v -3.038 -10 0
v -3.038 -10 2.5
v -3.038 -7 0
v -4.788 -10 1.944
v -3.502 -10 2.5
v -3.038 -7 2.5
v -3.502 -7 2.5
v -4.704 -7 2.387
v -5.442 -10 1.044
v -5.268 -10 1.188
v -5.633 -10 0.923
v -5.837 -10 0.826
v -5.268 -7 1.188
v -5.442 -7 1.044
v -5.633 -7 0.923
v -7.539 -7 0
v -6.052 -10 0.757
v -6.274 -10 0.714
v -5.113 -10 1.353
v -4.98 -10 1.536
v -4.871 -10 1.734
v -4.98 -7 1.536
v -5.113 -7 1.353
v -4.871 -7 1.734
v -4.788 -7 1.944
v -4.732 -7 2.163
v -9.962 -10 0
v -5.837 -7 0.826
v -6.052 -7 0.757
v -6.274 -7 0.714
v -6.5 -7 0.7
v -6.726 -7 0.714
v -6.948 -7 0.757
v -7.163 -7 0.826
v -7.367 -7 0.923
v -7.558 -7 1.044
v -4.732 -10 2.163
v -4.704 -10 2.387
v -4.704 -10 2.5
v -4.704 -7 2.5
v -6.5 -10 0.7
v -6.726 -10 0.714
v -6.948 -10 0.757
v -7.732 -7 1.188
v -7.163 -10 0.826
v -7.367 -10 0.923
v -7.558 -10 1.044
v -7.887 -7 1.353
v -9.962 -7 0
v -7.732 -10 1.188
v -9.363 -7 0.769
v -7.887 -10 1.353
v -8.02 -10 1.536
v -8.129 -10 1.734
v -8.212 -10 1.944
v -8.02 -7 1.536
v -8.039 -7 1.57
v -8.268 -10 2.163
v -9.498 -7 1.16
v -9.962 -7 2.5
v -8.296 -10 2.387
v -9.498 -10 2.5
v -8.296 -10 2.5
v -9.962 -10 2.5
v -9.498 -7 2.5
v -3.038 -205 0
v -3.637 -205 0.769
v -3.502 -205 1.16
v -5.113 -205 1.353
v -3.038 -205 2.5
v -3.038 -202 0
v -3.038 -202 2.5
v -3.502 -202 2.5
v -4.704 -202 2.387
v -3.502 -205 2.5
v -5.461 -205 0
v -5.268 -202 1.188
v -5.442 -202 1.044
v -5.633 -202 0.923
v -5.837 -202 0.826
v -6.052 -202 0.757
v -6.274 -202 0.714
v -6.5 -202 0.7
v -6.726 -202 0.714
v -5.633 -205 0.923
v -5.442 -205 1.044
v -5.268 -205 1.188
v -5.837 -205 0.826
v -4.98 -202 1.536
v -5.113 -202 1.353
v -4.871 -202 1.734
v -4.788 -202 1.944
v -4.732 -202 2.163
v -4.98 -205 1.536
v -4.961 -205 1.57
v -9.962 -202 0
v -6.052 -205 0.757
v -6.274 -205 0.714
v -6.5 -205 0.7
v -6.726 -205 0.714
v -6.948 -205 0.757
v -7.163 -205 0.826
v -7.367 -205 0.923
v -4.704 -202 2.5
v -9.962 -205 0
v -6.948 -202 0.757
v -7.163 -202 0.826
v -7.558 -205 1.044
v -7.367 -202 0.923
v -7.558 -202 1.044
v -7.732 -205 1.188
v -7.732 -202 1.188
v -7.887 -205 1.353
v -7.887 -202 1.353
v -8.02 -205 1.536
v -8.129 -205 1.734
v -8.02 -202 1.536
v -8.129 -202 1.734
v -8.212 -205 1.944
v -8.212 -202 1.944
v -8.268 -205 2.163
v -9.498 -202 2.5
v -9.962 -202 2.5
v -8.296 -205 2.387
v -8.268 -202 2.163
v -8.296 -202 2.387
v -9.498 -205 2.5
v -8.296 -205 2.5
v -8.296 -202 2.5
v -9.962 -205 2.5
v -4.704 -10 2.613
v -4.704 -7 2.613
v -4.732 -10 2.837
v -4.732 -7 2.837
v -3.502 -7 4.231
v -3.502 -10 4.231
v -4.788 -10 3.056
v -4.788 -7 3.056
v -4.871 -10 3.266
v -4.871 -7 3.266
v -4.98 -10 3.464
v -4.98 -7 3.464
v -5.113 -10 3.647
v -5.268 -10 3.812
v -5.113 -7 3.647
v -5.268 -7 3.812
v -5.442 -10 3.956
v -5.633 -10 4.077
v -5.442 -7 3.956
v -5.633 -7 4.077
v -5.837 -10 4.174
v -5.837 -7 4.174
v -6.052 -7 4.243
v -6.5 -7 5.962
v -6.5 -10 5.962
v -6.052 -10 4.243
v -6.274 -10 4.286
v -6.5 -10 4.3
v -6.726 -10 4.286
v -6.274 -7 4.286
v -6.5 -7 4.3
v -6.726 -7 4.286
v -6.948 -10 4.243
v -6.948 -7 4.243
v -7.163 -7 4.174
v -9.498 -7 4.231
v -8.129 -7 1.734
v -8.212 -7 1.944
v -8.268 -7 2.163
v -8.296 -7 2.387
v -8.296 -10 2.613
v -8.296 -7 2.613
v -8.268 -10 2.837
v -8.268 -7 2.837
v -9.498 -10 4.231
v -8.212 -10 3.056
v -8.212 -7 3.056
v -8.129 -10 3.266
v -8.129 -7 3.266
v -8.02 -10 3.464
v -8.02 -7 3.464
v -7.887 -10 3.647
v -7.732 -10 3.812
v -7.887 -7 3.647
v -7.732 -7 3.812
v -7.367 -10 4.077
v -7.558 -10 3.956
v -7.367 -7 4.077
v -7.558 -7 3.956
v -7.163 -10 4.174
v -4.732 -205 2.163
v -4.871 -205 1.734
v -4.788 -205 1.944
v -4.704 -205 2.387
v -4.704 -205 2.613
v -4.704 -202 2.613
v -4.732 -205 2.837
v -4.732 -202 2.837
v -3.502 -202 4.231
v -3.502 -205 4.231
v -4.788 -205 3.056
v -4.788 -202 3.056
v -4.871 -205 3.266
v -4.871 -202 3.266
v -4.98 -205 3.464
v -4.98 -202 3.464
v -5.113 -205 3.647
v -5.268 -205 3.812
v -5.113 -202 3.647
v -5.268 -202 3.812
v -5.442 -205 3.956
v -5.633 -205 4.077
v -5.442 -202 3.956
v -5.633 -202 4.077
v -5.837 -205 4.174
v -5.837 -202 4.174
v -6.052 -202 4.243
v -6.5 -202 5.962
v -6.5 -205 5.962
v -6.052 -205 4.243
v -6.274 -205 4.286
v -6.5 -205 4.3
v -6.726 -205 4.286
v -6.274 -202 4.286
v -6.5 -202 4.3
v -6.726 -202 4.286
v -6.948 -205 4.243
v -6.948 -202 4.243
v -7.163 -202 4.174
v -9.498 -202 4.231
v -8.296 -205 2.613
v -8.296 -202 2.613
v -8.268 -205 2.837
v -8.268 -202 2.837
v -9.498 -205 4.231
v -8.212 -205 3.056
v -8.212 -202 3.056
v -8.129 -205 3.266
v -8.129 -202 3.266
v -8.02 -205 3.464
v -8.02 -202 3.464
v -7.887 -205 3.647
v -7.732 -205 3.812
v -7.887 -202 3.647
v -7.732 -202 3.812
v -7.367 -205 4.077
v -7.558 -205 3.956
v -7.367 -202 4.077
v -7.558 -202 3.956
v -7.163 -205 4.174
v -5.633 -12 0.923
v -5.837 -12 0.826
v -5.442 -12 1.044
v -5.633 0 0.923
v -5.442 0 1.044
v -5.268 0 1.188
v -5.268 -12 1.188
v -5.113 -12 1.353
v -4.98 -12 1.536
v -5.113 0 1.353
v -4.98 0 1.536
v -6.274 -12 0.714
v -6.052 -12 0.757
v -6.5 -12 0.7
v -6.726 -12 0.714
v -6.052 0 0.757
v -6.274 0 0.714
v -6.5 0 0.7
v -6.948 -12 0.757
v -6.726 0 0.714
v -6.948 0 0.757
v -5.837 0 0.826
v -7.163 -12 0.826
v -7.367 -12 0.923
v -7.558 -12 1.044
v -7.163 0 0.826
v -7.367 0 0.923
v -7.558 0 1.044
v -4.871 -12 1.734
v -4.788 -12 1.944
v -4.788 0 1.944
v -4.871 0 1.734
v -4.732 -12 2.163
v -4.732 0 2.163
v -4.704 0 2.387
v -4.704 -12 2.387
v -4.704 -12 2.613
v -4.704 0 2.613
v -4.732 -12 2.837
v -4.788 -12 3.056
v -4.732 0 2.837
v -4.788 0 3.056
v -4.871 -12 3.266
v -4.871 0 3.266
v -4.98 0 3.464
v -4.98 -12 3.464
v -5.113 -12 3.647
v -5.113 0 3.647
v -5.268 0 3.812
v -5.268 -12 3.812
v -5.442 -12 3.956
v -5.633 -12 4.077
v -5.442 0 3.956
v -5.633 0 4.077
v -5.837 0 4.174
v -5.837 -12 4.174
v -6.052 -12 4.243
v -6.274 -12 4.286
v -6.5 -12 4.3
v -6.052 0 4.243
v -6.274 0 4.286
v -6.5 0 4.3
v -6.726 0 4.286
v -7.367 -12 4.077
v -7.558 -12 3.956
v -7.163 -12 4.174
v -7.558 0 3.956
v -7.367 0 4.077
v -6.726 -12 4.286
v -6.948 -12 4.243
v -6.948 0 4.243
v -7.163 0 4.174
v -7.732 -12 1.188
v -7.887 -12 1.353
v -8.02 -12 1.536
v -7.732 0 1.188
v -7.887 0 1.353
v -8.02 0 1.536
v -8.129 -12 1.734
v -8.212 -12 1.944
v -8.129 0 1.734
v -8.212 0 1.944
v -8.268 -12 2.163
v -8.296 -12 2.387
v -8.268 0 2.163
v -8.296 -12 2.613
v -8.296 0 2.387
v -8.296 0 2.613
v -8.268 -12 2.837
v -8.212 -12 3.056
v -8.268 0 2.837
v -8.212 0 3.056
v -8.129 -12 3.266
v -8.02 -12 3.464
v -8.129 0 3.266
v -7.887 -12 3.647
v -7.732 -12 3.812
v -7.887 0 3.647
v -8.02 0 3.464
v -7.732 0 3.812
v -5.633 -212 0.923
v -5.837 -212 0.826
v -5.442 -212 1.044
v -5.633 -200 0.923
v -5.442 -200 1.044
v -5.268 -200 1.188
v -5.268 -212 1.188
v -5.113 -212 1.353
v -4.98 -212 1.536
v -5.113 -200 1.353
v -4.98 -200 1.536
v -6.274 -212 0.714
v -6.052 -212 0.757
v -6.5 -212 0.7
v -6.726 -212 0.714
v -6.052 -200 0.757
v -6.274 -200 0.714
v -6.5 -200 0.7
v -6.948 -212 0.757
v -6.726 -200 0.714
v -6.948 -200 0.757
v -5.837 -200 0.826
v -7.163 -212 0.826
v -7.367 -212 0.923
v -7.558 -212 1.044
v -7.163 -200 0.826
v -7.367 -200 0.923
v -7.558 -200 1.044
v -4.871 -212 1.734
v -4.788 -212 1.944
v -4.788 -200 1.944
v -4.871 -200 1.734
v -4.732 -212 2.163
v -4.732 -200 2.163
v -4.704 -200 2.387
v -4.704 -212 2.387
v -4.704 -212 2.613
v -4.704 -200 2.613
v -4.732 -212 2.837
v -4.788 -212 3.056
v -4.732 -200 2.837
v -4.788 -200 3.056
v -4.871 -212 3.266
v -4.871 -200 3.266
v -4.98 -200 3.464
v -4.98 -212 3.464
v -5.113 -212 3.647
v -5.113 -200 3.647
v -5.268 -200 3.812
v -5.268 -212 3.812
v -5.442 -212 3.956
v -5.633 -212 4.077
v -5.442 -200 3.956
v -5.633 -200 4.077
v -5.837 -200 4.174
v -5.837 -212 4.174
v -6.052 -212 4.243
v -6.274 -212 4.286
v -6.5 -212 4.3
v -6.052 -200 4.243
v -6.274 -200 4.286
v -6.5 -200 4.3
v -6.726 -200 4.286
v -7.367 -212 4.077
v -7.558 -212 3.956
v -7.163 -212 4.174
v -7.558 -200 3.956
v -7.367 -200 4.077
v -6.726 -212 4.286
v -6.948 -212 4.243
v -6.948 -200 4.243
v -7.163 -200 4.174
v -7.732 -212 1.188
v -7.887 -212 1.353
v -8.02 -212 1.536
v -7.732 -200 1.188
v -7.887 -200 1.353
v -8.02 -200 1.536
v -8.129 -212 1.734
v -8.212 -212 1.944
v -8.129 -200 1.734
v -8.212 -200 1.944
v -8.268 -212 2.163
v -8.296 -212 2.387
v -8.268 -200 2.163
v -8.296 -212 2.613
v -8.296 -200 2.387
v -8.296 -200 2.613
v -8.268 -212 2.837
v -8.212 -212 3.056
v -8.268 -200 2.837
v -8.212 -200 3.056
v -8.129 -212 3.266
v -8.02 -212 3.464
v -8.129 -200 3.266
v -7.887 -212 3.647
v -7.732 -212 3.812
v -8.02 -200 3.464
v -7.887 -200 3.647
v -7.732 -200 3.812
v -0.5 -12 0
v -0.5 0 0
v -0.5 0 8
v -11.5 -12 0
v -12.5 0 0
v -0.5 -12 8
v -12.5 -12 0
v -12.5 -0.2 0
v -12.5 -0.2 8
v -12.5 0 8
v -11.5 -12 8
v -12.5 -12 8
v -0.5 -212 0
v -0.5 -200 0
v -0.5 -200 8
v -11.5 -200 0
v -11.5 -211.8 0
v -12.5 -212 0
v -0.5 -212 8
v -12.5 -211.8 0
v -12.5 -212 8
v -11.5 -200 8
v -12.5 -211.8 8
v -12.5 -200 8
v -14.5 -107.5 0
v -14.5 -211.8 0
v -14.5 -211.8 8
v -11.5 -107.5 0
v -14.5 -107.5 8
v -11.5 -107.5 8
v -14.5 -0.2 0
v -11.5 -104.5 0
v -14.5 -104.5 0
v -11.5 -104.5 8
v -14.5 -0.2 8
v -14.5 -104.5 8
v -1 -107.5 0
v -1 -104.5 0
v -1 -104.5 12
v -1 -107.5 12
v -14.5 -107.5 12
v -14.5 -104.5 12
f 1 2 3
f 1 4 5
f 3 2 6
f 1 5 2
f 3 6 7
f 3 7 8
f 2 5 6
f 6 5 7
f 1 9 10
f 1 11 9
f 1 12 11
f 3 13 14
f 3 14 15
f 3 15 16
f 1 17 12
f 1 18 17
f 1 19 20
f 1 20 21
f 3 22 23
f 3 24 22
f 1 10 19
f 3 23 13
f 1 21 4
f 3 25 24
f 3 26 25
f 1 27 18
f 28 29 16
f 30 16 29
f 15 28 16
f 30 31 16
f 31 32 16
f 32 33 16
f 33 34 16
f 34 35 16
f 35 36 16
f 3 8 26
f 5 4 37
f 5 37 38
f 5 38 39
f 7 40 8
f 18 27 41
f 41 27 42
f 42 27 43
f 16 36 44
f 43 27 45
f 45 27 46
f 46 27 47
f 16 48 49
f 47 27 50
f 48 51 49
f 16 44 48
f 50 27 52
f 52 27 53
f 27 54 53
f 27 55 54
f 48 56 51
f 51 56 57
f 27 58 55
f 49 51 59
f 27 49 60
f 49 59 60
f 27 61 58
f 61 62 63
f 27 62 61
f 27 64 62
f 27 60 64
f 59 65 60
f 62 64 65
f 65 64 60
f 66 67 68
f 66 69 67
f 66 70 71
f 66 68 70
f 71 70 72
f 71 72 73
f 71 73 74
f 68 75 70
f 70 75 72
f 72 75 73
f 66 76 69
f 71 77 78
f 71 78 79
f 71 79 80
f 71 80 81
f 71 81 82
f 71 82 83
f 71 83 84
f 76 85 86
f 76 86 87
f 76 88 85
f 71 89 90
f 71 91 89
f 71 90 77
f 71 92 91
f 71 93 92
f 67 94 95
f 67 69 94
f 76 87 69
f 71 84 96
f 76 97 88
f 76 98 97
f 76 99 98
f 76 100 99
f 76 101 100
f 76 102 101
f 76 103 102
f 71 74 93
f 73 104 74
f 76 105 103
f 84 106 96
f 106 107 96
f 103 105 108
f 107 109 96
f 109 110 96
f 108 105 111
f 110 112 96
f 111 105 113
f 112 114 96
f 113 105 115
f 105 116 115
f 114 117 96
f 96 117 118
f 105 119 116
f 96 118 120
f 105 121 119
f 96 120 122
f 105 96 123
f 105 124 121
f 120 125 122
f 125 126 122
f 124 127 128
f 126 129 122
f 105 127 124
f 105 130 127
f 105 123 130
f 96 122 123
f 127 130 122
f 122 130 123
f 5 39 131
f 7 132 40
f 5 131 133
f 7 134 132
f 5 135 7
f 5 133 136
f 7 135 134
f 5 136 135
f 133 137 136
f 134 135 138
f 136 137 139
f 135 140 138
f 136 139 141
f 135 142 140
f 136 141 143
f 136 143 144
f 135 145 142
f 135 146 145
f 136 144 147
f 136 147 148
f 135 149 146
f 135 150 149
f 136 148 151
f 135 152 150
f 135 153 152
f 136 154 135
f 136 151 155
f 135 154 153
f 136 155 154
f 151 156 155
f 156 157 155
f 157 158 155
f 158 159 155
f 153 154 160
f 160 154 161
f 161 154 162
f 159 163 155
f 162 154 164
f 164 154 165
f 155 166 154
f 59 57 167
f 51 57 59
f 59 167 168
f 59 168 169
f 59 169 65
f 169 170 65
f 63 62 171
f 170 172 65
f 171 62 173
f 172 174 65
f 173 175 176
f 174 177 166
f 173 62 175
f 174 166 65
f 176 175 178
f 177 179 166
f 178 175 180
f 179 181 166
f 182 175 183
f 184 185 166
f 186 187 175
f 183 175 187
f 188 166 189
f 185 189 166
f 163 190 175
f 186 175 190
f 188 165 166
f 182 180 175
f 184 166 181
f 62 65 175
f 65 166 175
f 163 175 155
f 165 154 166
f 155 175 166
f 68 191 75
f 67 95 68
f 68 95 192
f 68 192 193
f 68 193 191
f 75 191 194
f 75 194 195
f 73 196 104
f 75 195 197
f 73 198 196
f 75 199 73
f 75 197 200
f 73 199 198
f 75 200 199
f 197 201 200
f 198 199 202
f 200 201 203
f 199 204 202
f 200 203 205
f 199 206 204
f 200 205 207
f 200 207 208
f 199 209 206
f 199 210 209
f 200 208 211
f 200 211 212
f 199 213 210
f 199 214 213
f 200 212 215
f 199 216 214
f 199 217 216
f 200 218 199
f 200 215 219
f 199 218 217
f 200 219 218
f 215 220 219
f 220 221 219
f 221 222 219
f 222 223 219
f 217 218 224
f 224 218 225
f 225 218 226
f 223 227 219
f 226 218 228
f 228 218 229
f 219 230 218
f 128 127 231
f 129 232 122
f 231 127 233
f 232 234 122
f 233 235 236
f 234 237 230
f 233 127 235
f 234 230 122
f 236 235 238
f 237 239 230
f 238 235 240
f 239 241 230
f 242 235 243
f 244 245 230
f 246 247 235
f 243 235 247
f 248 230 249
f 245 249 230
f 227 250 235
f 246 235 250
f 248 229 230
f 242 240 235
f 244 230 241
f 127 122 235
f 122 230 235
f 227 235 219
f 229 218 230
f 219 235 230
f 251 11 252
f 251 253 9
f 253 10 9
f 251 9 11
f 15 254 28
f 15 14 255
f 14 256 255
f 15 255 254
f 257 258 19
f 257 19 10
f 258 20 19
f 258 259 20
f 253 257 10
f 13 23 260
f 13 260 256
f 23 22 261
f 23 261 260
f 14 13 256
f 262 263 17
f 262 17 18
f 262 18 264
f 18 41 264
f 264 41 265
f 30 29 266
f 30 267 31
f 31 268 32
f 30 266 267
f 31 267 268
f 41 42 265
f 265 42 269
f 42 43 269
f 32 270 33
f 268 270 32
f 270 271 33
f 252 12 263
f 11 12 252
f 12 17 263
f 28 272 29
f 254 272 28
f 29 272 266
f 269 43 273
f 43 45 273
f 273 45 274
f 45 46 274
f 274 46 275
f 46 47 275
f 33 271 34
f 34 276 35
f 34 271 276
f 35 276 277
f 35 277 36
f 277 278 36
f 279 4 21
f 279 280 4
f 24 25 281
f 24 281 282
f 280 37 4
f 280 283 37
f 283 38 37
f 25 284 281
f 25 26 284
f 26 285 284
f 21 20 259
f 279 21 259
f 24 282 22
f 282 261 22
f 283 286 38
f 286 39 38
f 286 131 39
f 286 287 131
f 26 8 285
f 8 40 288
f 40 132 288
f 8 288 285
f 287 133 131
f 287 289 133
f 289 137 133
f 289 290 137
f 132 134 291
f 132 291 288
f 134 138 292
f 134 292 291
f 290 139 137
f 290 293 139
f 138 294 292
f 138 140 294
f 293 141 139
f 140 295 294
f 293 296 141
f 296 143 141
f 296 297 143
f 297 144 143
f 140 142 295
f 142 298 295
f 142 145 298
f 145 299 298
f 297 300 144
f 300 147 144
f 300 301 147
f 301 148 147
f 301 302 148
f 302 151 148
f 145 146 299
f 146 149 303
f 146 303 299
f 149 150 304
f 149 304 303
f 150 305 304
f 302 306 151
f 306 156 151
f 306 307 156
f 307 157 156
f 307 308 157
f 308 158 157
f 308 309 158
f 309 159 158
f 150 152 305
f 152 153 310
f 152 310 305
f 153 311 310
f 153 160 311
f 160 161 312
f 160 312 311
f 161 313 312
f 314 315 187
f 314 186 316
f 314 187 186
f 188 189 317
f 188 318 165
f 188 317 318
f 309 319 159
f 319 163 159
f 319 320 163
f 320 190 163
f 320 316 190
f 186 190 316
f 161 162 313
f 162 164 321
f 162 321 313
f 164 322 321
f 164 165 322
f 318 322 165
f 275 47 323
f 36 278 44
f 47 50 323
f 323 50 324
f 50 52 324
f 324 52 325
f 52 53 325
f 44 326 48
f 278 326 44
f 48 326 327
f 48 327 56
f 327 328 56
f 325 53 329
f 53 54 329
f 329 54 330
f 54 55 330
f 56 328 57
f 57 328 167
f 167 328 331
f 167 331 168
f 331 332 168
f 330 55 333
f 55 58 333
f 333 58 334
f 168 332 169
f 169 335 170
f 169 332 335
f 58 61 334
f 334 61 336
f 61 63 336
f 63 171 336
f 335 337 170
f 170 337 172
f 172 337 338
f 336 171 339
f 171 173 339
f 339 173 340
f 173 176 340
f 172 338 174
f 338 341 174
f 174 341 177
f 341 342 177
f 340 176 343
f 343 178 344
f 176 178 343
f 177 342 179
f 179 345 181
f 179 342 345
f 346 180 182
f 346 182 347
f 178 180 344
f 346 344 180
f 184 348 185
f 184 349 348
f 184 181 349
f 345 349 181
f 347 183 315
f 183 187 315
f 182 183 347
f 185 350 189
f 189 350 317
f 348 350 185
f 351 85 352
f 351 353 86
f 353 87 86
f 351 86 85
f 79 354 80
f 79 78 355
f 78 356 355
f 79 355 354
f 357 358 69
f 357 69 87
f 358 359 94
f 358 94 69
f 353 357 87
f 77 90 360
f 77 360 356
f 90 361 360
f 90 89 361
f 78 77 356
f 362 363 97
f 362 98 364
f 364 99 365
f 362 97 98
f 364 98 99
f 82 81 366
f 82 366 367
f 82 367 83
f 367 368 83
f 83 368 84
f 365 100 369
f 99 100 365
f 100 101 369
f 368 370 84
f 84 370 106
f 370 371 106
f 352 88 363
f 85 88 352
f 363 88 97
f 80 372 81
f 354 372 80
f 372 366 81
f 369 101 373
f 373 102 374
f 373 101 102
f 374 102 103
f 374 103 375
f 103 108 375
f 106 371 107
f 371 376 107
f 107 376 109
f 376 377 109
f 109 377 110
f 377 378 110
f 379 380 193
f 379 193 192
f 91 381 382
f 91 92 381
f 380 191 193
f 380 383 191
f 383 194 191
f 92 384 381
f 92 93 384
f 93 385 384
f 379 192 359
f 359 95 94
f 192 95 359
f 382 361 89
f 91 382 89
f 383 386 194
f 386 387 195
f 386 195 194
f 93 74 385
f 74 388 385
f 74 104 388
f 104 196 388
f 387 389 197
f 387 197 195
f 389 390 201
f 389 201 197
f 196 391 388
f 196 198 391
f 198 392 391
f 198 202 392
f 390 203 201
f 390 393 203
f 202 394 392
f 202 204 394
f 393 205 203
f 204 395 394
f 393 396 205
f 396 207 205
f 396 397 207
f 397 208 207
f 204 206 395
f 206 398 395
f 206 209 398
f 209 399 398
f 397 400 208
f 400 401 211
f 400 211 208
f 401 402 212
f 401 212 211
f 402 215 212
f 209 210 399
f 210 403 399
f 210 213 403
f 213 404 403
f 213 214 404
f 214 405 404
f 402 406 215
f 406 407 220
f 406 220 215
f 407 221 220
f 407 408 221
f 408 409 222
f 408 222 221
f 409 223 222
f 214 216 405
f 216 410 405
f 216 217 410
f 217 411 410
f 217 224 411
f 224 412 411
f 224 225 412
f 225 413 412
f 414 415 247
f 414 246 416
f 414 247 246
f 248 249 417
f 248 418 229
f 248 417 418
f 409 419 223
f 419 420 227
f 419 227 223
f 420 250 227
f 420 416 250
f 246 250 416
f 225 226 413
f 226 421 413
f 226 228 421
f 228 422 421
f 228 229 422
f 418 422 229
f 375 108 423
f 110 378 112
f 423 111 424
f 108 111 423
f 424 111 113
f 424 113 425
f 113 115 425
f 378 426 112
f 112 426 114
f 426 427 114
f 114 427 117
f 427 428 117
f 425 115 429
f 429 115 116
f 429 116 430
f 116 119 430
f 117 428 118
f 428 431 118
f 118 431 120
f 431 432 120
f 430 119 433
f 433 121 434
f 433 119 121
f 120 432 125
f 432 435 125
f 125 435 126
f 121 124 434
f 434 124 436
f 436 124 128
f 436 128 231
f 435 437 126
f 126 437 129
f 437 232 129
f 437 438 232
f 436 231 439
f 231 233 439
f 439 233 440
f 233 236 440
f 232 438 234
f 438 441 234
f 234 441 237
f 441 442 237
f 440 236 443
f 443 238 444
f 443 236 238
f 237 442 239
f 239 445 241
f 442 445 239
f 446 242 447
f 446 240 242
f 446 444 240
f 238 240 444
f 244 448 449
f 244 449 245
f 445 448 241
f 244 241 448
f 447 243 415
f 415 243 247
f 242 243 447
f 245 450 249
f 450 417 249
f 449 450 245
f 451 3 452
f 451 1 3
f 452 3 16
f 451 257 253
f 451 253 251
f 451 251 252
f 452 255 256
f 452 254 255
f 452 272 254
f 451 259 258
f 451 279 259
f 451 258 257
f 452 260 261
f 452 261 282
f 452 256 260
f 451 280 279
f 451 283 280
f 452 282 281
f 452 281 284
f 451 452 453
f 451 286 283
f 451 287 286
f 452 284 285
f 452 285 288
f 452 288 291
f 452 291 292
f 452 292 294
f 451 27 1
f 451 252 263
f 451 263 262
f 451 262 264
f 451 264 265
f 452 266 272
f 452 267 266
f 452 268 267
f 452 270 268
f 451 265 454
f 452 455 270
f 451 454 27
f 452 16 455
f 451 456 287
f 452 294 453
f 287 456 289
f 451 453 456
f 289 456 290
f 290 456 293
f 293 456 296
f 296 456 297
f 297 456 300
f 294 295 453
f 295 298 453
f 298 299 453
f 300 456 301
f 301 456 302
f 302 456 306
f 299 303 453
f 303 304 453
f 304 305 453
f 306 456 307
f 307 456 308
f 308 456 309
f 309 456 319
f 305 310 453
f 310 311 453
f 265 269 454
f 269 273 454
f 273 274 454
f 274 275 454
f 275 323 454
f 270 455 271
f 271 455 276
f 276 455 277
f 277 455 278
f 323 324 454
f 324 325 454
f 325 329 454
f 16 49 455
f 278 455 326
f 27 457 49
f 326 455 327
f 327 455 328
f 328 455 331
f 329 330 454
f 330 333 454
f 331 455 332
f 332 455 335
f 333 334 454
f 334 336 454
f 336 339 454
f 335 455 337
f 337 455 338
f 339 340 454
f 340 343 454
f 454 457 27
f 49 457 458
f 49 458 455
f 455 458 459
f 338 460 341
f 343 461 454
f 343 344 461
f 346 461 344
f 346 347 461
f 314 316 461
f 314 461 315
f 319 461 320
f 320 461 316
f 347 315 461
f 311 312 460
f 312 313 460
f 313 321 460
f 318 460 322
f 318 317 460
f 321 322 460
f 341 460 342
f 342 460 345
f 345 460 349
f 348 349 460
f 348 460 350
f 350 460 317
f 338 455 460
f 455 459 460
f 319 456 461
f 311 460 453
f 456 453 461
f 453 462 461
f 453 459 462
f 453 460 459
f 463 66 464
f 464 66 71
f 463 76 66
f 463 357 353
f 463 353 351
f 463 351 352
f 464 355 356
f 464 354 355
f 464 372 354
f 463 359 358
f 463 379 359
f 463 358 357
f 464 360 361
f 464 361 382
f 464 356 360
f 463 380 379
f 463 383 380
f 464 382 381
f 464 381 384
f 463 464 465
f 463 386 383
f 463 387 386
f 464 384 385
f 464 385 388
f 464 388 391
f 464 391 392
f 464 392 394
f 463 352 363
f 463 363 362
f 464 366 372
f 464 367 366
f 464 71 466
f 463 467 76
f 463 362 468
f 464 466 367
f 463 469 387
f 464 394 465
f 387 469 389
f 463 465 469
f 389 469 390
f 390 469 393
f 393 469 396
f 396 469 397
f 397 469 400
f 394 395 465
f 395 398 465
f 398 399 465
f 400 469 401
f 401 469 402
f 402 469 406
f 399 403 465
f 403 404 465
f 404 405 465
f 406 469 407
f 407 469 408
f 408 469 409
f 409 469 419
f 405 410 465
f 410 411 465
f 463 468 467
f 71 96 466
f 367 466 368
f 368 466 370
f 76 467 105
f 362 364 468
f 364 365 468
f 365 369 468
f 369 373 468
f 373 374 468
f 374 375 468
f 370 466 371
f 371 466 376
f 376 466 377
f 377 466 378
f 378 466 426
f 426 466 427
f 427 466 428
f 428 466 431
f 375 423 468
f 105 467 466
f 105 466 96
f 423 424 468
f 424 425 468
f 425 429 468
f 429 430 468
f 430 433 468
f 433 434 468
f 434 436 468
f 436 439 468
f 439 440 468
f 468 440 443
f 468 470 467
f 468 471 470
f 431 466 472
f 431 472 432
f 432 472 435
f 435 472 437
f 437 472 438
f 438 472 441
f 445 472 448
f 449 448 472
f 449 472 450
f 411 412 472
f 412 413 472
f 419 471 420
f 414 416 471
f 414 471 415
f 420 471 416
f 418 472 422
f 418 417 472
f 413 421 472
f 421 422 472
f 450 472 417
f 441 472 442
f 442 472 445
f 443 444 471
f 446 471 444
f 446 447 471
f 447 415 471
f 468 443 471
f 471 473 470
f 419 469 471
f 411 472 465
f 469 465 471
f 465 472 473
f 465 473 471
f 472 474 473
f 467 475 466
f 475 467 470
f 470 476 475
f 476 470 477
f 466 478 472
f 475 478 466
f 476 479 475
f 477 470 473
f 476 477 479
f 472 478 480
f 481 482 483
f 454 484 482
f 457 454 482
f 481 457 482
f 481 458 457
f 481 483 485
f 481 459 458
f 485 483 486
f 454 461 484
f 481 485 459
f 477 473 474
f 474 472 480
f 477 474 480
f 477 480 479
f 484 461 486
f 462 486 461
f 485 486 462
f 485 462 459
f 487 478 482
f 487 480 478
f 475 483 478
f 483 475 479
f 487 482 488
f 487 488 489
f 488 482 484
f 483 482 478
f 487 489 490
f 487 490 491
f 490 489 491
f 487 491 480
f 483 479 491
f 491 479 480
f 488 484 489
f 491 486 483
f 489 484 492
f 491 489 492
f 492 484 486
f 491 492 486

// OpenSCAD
$fn = 50;

difference() {
	union() {
		translate(v = [0, 0, 0]) {
			rotate(a = [0, 0, 0]) {
				difference() {
					union() {
						translate(v = [0, 0, 2.5]) {
							rotate(a = [0, -90, 0]) {
								difference() {
									union() {
										translate(v = [0, 0, 0]) {
											rotate(a = [0, 0, 0]) {
												difference() {
													union() {
														translate(v = [-2.5, -12.0, 0.5]) {
															cube(size = [8.0, 12.0, 12.0]);
														}
													}
													union() {
														translate(v = [0, -7.0, 6.5]) {
															rotate(a = [90, 0, 0]) {
																difference() {
																	union() {
																		translate(v = [-20.0, -3.4619999999999997, 0]) {
																			cube(size = [20, 6.9239999999999995, 3]);
																		}
																		linear_extrude(height = 3) {
																			polygon(points = [[3.4619999999999997, 0.0], [1.7310000000000003, 2.9981799479017264], [-1.7309999999999992, 2.9981799479017264], [-3.4619999999999997, 4.2397272186481365e-16], [-1.7310000000000014, -2.998179947901726], [1.7309999999999977, -2.9981799479017277]]);
																		}
																	}
																	union();
																}
															}
														}
														translate(v = [0, 0.1, 6.5]) {
															rotate(a = [90, 0, 0]) {
																cylinder(h = 20.0, r = 1.8);
															}
														}
													}
												}
											}
										}
										translate(v = [0, -212.0, 13.0]) {
											rotate(a = [180, 0, 0]) {
												difference() {
													union() {
														translate(v = [-2.5, -12.0, 0.5]) {
															cube(size = [8.0, 12.0, 12.0]);
														}
													}
													union() {
														translate(v = [0, -7.0, 6.5]) {
															rotate(a = [90, 0, 0]) {
																difference() {
																	union() {
																		translate(v = [-20.0, -3.4619999999999997, 0]) {
																			cube(size = [20, 6.9239999999999995, 3]);
																		}
																		linear_extrude(height = 3) {
																			polygon(points = [[3.4619999999999997, 0.0], [1.7310000000000003, 2.9981799479017264], [-1.7309999999999992, 2.9981799479017264], [-3.4619999999999997, 4.2397272186481365e-16], [-1.7310000000000014, -2.998179947901726], [1.7309999999999977, -2.9981799479017277]]);
																		}
																	}
																	union();
																}
															}
														}
														translate(v = [0, 0.1, 6.5]) {
															rotate(a = [90, 0, 0]) {
																cylinder(h = 20.0, r = 1.8);
															}
														}
													}
												}
											}
										}
										translate(v = [-2.5, -211.8, 11.5]) {
											cube(size = [8.0, 211.6, 3.0]);
										}
										translate(v = [-2.5, -107.5, 1.0]) {
											cube(size = [12.0, 3.0, 13.5]);
										}
									}
									union();
								}
							}
						}
					}
					union();
				}
			}
		}
	}
	union();
}
